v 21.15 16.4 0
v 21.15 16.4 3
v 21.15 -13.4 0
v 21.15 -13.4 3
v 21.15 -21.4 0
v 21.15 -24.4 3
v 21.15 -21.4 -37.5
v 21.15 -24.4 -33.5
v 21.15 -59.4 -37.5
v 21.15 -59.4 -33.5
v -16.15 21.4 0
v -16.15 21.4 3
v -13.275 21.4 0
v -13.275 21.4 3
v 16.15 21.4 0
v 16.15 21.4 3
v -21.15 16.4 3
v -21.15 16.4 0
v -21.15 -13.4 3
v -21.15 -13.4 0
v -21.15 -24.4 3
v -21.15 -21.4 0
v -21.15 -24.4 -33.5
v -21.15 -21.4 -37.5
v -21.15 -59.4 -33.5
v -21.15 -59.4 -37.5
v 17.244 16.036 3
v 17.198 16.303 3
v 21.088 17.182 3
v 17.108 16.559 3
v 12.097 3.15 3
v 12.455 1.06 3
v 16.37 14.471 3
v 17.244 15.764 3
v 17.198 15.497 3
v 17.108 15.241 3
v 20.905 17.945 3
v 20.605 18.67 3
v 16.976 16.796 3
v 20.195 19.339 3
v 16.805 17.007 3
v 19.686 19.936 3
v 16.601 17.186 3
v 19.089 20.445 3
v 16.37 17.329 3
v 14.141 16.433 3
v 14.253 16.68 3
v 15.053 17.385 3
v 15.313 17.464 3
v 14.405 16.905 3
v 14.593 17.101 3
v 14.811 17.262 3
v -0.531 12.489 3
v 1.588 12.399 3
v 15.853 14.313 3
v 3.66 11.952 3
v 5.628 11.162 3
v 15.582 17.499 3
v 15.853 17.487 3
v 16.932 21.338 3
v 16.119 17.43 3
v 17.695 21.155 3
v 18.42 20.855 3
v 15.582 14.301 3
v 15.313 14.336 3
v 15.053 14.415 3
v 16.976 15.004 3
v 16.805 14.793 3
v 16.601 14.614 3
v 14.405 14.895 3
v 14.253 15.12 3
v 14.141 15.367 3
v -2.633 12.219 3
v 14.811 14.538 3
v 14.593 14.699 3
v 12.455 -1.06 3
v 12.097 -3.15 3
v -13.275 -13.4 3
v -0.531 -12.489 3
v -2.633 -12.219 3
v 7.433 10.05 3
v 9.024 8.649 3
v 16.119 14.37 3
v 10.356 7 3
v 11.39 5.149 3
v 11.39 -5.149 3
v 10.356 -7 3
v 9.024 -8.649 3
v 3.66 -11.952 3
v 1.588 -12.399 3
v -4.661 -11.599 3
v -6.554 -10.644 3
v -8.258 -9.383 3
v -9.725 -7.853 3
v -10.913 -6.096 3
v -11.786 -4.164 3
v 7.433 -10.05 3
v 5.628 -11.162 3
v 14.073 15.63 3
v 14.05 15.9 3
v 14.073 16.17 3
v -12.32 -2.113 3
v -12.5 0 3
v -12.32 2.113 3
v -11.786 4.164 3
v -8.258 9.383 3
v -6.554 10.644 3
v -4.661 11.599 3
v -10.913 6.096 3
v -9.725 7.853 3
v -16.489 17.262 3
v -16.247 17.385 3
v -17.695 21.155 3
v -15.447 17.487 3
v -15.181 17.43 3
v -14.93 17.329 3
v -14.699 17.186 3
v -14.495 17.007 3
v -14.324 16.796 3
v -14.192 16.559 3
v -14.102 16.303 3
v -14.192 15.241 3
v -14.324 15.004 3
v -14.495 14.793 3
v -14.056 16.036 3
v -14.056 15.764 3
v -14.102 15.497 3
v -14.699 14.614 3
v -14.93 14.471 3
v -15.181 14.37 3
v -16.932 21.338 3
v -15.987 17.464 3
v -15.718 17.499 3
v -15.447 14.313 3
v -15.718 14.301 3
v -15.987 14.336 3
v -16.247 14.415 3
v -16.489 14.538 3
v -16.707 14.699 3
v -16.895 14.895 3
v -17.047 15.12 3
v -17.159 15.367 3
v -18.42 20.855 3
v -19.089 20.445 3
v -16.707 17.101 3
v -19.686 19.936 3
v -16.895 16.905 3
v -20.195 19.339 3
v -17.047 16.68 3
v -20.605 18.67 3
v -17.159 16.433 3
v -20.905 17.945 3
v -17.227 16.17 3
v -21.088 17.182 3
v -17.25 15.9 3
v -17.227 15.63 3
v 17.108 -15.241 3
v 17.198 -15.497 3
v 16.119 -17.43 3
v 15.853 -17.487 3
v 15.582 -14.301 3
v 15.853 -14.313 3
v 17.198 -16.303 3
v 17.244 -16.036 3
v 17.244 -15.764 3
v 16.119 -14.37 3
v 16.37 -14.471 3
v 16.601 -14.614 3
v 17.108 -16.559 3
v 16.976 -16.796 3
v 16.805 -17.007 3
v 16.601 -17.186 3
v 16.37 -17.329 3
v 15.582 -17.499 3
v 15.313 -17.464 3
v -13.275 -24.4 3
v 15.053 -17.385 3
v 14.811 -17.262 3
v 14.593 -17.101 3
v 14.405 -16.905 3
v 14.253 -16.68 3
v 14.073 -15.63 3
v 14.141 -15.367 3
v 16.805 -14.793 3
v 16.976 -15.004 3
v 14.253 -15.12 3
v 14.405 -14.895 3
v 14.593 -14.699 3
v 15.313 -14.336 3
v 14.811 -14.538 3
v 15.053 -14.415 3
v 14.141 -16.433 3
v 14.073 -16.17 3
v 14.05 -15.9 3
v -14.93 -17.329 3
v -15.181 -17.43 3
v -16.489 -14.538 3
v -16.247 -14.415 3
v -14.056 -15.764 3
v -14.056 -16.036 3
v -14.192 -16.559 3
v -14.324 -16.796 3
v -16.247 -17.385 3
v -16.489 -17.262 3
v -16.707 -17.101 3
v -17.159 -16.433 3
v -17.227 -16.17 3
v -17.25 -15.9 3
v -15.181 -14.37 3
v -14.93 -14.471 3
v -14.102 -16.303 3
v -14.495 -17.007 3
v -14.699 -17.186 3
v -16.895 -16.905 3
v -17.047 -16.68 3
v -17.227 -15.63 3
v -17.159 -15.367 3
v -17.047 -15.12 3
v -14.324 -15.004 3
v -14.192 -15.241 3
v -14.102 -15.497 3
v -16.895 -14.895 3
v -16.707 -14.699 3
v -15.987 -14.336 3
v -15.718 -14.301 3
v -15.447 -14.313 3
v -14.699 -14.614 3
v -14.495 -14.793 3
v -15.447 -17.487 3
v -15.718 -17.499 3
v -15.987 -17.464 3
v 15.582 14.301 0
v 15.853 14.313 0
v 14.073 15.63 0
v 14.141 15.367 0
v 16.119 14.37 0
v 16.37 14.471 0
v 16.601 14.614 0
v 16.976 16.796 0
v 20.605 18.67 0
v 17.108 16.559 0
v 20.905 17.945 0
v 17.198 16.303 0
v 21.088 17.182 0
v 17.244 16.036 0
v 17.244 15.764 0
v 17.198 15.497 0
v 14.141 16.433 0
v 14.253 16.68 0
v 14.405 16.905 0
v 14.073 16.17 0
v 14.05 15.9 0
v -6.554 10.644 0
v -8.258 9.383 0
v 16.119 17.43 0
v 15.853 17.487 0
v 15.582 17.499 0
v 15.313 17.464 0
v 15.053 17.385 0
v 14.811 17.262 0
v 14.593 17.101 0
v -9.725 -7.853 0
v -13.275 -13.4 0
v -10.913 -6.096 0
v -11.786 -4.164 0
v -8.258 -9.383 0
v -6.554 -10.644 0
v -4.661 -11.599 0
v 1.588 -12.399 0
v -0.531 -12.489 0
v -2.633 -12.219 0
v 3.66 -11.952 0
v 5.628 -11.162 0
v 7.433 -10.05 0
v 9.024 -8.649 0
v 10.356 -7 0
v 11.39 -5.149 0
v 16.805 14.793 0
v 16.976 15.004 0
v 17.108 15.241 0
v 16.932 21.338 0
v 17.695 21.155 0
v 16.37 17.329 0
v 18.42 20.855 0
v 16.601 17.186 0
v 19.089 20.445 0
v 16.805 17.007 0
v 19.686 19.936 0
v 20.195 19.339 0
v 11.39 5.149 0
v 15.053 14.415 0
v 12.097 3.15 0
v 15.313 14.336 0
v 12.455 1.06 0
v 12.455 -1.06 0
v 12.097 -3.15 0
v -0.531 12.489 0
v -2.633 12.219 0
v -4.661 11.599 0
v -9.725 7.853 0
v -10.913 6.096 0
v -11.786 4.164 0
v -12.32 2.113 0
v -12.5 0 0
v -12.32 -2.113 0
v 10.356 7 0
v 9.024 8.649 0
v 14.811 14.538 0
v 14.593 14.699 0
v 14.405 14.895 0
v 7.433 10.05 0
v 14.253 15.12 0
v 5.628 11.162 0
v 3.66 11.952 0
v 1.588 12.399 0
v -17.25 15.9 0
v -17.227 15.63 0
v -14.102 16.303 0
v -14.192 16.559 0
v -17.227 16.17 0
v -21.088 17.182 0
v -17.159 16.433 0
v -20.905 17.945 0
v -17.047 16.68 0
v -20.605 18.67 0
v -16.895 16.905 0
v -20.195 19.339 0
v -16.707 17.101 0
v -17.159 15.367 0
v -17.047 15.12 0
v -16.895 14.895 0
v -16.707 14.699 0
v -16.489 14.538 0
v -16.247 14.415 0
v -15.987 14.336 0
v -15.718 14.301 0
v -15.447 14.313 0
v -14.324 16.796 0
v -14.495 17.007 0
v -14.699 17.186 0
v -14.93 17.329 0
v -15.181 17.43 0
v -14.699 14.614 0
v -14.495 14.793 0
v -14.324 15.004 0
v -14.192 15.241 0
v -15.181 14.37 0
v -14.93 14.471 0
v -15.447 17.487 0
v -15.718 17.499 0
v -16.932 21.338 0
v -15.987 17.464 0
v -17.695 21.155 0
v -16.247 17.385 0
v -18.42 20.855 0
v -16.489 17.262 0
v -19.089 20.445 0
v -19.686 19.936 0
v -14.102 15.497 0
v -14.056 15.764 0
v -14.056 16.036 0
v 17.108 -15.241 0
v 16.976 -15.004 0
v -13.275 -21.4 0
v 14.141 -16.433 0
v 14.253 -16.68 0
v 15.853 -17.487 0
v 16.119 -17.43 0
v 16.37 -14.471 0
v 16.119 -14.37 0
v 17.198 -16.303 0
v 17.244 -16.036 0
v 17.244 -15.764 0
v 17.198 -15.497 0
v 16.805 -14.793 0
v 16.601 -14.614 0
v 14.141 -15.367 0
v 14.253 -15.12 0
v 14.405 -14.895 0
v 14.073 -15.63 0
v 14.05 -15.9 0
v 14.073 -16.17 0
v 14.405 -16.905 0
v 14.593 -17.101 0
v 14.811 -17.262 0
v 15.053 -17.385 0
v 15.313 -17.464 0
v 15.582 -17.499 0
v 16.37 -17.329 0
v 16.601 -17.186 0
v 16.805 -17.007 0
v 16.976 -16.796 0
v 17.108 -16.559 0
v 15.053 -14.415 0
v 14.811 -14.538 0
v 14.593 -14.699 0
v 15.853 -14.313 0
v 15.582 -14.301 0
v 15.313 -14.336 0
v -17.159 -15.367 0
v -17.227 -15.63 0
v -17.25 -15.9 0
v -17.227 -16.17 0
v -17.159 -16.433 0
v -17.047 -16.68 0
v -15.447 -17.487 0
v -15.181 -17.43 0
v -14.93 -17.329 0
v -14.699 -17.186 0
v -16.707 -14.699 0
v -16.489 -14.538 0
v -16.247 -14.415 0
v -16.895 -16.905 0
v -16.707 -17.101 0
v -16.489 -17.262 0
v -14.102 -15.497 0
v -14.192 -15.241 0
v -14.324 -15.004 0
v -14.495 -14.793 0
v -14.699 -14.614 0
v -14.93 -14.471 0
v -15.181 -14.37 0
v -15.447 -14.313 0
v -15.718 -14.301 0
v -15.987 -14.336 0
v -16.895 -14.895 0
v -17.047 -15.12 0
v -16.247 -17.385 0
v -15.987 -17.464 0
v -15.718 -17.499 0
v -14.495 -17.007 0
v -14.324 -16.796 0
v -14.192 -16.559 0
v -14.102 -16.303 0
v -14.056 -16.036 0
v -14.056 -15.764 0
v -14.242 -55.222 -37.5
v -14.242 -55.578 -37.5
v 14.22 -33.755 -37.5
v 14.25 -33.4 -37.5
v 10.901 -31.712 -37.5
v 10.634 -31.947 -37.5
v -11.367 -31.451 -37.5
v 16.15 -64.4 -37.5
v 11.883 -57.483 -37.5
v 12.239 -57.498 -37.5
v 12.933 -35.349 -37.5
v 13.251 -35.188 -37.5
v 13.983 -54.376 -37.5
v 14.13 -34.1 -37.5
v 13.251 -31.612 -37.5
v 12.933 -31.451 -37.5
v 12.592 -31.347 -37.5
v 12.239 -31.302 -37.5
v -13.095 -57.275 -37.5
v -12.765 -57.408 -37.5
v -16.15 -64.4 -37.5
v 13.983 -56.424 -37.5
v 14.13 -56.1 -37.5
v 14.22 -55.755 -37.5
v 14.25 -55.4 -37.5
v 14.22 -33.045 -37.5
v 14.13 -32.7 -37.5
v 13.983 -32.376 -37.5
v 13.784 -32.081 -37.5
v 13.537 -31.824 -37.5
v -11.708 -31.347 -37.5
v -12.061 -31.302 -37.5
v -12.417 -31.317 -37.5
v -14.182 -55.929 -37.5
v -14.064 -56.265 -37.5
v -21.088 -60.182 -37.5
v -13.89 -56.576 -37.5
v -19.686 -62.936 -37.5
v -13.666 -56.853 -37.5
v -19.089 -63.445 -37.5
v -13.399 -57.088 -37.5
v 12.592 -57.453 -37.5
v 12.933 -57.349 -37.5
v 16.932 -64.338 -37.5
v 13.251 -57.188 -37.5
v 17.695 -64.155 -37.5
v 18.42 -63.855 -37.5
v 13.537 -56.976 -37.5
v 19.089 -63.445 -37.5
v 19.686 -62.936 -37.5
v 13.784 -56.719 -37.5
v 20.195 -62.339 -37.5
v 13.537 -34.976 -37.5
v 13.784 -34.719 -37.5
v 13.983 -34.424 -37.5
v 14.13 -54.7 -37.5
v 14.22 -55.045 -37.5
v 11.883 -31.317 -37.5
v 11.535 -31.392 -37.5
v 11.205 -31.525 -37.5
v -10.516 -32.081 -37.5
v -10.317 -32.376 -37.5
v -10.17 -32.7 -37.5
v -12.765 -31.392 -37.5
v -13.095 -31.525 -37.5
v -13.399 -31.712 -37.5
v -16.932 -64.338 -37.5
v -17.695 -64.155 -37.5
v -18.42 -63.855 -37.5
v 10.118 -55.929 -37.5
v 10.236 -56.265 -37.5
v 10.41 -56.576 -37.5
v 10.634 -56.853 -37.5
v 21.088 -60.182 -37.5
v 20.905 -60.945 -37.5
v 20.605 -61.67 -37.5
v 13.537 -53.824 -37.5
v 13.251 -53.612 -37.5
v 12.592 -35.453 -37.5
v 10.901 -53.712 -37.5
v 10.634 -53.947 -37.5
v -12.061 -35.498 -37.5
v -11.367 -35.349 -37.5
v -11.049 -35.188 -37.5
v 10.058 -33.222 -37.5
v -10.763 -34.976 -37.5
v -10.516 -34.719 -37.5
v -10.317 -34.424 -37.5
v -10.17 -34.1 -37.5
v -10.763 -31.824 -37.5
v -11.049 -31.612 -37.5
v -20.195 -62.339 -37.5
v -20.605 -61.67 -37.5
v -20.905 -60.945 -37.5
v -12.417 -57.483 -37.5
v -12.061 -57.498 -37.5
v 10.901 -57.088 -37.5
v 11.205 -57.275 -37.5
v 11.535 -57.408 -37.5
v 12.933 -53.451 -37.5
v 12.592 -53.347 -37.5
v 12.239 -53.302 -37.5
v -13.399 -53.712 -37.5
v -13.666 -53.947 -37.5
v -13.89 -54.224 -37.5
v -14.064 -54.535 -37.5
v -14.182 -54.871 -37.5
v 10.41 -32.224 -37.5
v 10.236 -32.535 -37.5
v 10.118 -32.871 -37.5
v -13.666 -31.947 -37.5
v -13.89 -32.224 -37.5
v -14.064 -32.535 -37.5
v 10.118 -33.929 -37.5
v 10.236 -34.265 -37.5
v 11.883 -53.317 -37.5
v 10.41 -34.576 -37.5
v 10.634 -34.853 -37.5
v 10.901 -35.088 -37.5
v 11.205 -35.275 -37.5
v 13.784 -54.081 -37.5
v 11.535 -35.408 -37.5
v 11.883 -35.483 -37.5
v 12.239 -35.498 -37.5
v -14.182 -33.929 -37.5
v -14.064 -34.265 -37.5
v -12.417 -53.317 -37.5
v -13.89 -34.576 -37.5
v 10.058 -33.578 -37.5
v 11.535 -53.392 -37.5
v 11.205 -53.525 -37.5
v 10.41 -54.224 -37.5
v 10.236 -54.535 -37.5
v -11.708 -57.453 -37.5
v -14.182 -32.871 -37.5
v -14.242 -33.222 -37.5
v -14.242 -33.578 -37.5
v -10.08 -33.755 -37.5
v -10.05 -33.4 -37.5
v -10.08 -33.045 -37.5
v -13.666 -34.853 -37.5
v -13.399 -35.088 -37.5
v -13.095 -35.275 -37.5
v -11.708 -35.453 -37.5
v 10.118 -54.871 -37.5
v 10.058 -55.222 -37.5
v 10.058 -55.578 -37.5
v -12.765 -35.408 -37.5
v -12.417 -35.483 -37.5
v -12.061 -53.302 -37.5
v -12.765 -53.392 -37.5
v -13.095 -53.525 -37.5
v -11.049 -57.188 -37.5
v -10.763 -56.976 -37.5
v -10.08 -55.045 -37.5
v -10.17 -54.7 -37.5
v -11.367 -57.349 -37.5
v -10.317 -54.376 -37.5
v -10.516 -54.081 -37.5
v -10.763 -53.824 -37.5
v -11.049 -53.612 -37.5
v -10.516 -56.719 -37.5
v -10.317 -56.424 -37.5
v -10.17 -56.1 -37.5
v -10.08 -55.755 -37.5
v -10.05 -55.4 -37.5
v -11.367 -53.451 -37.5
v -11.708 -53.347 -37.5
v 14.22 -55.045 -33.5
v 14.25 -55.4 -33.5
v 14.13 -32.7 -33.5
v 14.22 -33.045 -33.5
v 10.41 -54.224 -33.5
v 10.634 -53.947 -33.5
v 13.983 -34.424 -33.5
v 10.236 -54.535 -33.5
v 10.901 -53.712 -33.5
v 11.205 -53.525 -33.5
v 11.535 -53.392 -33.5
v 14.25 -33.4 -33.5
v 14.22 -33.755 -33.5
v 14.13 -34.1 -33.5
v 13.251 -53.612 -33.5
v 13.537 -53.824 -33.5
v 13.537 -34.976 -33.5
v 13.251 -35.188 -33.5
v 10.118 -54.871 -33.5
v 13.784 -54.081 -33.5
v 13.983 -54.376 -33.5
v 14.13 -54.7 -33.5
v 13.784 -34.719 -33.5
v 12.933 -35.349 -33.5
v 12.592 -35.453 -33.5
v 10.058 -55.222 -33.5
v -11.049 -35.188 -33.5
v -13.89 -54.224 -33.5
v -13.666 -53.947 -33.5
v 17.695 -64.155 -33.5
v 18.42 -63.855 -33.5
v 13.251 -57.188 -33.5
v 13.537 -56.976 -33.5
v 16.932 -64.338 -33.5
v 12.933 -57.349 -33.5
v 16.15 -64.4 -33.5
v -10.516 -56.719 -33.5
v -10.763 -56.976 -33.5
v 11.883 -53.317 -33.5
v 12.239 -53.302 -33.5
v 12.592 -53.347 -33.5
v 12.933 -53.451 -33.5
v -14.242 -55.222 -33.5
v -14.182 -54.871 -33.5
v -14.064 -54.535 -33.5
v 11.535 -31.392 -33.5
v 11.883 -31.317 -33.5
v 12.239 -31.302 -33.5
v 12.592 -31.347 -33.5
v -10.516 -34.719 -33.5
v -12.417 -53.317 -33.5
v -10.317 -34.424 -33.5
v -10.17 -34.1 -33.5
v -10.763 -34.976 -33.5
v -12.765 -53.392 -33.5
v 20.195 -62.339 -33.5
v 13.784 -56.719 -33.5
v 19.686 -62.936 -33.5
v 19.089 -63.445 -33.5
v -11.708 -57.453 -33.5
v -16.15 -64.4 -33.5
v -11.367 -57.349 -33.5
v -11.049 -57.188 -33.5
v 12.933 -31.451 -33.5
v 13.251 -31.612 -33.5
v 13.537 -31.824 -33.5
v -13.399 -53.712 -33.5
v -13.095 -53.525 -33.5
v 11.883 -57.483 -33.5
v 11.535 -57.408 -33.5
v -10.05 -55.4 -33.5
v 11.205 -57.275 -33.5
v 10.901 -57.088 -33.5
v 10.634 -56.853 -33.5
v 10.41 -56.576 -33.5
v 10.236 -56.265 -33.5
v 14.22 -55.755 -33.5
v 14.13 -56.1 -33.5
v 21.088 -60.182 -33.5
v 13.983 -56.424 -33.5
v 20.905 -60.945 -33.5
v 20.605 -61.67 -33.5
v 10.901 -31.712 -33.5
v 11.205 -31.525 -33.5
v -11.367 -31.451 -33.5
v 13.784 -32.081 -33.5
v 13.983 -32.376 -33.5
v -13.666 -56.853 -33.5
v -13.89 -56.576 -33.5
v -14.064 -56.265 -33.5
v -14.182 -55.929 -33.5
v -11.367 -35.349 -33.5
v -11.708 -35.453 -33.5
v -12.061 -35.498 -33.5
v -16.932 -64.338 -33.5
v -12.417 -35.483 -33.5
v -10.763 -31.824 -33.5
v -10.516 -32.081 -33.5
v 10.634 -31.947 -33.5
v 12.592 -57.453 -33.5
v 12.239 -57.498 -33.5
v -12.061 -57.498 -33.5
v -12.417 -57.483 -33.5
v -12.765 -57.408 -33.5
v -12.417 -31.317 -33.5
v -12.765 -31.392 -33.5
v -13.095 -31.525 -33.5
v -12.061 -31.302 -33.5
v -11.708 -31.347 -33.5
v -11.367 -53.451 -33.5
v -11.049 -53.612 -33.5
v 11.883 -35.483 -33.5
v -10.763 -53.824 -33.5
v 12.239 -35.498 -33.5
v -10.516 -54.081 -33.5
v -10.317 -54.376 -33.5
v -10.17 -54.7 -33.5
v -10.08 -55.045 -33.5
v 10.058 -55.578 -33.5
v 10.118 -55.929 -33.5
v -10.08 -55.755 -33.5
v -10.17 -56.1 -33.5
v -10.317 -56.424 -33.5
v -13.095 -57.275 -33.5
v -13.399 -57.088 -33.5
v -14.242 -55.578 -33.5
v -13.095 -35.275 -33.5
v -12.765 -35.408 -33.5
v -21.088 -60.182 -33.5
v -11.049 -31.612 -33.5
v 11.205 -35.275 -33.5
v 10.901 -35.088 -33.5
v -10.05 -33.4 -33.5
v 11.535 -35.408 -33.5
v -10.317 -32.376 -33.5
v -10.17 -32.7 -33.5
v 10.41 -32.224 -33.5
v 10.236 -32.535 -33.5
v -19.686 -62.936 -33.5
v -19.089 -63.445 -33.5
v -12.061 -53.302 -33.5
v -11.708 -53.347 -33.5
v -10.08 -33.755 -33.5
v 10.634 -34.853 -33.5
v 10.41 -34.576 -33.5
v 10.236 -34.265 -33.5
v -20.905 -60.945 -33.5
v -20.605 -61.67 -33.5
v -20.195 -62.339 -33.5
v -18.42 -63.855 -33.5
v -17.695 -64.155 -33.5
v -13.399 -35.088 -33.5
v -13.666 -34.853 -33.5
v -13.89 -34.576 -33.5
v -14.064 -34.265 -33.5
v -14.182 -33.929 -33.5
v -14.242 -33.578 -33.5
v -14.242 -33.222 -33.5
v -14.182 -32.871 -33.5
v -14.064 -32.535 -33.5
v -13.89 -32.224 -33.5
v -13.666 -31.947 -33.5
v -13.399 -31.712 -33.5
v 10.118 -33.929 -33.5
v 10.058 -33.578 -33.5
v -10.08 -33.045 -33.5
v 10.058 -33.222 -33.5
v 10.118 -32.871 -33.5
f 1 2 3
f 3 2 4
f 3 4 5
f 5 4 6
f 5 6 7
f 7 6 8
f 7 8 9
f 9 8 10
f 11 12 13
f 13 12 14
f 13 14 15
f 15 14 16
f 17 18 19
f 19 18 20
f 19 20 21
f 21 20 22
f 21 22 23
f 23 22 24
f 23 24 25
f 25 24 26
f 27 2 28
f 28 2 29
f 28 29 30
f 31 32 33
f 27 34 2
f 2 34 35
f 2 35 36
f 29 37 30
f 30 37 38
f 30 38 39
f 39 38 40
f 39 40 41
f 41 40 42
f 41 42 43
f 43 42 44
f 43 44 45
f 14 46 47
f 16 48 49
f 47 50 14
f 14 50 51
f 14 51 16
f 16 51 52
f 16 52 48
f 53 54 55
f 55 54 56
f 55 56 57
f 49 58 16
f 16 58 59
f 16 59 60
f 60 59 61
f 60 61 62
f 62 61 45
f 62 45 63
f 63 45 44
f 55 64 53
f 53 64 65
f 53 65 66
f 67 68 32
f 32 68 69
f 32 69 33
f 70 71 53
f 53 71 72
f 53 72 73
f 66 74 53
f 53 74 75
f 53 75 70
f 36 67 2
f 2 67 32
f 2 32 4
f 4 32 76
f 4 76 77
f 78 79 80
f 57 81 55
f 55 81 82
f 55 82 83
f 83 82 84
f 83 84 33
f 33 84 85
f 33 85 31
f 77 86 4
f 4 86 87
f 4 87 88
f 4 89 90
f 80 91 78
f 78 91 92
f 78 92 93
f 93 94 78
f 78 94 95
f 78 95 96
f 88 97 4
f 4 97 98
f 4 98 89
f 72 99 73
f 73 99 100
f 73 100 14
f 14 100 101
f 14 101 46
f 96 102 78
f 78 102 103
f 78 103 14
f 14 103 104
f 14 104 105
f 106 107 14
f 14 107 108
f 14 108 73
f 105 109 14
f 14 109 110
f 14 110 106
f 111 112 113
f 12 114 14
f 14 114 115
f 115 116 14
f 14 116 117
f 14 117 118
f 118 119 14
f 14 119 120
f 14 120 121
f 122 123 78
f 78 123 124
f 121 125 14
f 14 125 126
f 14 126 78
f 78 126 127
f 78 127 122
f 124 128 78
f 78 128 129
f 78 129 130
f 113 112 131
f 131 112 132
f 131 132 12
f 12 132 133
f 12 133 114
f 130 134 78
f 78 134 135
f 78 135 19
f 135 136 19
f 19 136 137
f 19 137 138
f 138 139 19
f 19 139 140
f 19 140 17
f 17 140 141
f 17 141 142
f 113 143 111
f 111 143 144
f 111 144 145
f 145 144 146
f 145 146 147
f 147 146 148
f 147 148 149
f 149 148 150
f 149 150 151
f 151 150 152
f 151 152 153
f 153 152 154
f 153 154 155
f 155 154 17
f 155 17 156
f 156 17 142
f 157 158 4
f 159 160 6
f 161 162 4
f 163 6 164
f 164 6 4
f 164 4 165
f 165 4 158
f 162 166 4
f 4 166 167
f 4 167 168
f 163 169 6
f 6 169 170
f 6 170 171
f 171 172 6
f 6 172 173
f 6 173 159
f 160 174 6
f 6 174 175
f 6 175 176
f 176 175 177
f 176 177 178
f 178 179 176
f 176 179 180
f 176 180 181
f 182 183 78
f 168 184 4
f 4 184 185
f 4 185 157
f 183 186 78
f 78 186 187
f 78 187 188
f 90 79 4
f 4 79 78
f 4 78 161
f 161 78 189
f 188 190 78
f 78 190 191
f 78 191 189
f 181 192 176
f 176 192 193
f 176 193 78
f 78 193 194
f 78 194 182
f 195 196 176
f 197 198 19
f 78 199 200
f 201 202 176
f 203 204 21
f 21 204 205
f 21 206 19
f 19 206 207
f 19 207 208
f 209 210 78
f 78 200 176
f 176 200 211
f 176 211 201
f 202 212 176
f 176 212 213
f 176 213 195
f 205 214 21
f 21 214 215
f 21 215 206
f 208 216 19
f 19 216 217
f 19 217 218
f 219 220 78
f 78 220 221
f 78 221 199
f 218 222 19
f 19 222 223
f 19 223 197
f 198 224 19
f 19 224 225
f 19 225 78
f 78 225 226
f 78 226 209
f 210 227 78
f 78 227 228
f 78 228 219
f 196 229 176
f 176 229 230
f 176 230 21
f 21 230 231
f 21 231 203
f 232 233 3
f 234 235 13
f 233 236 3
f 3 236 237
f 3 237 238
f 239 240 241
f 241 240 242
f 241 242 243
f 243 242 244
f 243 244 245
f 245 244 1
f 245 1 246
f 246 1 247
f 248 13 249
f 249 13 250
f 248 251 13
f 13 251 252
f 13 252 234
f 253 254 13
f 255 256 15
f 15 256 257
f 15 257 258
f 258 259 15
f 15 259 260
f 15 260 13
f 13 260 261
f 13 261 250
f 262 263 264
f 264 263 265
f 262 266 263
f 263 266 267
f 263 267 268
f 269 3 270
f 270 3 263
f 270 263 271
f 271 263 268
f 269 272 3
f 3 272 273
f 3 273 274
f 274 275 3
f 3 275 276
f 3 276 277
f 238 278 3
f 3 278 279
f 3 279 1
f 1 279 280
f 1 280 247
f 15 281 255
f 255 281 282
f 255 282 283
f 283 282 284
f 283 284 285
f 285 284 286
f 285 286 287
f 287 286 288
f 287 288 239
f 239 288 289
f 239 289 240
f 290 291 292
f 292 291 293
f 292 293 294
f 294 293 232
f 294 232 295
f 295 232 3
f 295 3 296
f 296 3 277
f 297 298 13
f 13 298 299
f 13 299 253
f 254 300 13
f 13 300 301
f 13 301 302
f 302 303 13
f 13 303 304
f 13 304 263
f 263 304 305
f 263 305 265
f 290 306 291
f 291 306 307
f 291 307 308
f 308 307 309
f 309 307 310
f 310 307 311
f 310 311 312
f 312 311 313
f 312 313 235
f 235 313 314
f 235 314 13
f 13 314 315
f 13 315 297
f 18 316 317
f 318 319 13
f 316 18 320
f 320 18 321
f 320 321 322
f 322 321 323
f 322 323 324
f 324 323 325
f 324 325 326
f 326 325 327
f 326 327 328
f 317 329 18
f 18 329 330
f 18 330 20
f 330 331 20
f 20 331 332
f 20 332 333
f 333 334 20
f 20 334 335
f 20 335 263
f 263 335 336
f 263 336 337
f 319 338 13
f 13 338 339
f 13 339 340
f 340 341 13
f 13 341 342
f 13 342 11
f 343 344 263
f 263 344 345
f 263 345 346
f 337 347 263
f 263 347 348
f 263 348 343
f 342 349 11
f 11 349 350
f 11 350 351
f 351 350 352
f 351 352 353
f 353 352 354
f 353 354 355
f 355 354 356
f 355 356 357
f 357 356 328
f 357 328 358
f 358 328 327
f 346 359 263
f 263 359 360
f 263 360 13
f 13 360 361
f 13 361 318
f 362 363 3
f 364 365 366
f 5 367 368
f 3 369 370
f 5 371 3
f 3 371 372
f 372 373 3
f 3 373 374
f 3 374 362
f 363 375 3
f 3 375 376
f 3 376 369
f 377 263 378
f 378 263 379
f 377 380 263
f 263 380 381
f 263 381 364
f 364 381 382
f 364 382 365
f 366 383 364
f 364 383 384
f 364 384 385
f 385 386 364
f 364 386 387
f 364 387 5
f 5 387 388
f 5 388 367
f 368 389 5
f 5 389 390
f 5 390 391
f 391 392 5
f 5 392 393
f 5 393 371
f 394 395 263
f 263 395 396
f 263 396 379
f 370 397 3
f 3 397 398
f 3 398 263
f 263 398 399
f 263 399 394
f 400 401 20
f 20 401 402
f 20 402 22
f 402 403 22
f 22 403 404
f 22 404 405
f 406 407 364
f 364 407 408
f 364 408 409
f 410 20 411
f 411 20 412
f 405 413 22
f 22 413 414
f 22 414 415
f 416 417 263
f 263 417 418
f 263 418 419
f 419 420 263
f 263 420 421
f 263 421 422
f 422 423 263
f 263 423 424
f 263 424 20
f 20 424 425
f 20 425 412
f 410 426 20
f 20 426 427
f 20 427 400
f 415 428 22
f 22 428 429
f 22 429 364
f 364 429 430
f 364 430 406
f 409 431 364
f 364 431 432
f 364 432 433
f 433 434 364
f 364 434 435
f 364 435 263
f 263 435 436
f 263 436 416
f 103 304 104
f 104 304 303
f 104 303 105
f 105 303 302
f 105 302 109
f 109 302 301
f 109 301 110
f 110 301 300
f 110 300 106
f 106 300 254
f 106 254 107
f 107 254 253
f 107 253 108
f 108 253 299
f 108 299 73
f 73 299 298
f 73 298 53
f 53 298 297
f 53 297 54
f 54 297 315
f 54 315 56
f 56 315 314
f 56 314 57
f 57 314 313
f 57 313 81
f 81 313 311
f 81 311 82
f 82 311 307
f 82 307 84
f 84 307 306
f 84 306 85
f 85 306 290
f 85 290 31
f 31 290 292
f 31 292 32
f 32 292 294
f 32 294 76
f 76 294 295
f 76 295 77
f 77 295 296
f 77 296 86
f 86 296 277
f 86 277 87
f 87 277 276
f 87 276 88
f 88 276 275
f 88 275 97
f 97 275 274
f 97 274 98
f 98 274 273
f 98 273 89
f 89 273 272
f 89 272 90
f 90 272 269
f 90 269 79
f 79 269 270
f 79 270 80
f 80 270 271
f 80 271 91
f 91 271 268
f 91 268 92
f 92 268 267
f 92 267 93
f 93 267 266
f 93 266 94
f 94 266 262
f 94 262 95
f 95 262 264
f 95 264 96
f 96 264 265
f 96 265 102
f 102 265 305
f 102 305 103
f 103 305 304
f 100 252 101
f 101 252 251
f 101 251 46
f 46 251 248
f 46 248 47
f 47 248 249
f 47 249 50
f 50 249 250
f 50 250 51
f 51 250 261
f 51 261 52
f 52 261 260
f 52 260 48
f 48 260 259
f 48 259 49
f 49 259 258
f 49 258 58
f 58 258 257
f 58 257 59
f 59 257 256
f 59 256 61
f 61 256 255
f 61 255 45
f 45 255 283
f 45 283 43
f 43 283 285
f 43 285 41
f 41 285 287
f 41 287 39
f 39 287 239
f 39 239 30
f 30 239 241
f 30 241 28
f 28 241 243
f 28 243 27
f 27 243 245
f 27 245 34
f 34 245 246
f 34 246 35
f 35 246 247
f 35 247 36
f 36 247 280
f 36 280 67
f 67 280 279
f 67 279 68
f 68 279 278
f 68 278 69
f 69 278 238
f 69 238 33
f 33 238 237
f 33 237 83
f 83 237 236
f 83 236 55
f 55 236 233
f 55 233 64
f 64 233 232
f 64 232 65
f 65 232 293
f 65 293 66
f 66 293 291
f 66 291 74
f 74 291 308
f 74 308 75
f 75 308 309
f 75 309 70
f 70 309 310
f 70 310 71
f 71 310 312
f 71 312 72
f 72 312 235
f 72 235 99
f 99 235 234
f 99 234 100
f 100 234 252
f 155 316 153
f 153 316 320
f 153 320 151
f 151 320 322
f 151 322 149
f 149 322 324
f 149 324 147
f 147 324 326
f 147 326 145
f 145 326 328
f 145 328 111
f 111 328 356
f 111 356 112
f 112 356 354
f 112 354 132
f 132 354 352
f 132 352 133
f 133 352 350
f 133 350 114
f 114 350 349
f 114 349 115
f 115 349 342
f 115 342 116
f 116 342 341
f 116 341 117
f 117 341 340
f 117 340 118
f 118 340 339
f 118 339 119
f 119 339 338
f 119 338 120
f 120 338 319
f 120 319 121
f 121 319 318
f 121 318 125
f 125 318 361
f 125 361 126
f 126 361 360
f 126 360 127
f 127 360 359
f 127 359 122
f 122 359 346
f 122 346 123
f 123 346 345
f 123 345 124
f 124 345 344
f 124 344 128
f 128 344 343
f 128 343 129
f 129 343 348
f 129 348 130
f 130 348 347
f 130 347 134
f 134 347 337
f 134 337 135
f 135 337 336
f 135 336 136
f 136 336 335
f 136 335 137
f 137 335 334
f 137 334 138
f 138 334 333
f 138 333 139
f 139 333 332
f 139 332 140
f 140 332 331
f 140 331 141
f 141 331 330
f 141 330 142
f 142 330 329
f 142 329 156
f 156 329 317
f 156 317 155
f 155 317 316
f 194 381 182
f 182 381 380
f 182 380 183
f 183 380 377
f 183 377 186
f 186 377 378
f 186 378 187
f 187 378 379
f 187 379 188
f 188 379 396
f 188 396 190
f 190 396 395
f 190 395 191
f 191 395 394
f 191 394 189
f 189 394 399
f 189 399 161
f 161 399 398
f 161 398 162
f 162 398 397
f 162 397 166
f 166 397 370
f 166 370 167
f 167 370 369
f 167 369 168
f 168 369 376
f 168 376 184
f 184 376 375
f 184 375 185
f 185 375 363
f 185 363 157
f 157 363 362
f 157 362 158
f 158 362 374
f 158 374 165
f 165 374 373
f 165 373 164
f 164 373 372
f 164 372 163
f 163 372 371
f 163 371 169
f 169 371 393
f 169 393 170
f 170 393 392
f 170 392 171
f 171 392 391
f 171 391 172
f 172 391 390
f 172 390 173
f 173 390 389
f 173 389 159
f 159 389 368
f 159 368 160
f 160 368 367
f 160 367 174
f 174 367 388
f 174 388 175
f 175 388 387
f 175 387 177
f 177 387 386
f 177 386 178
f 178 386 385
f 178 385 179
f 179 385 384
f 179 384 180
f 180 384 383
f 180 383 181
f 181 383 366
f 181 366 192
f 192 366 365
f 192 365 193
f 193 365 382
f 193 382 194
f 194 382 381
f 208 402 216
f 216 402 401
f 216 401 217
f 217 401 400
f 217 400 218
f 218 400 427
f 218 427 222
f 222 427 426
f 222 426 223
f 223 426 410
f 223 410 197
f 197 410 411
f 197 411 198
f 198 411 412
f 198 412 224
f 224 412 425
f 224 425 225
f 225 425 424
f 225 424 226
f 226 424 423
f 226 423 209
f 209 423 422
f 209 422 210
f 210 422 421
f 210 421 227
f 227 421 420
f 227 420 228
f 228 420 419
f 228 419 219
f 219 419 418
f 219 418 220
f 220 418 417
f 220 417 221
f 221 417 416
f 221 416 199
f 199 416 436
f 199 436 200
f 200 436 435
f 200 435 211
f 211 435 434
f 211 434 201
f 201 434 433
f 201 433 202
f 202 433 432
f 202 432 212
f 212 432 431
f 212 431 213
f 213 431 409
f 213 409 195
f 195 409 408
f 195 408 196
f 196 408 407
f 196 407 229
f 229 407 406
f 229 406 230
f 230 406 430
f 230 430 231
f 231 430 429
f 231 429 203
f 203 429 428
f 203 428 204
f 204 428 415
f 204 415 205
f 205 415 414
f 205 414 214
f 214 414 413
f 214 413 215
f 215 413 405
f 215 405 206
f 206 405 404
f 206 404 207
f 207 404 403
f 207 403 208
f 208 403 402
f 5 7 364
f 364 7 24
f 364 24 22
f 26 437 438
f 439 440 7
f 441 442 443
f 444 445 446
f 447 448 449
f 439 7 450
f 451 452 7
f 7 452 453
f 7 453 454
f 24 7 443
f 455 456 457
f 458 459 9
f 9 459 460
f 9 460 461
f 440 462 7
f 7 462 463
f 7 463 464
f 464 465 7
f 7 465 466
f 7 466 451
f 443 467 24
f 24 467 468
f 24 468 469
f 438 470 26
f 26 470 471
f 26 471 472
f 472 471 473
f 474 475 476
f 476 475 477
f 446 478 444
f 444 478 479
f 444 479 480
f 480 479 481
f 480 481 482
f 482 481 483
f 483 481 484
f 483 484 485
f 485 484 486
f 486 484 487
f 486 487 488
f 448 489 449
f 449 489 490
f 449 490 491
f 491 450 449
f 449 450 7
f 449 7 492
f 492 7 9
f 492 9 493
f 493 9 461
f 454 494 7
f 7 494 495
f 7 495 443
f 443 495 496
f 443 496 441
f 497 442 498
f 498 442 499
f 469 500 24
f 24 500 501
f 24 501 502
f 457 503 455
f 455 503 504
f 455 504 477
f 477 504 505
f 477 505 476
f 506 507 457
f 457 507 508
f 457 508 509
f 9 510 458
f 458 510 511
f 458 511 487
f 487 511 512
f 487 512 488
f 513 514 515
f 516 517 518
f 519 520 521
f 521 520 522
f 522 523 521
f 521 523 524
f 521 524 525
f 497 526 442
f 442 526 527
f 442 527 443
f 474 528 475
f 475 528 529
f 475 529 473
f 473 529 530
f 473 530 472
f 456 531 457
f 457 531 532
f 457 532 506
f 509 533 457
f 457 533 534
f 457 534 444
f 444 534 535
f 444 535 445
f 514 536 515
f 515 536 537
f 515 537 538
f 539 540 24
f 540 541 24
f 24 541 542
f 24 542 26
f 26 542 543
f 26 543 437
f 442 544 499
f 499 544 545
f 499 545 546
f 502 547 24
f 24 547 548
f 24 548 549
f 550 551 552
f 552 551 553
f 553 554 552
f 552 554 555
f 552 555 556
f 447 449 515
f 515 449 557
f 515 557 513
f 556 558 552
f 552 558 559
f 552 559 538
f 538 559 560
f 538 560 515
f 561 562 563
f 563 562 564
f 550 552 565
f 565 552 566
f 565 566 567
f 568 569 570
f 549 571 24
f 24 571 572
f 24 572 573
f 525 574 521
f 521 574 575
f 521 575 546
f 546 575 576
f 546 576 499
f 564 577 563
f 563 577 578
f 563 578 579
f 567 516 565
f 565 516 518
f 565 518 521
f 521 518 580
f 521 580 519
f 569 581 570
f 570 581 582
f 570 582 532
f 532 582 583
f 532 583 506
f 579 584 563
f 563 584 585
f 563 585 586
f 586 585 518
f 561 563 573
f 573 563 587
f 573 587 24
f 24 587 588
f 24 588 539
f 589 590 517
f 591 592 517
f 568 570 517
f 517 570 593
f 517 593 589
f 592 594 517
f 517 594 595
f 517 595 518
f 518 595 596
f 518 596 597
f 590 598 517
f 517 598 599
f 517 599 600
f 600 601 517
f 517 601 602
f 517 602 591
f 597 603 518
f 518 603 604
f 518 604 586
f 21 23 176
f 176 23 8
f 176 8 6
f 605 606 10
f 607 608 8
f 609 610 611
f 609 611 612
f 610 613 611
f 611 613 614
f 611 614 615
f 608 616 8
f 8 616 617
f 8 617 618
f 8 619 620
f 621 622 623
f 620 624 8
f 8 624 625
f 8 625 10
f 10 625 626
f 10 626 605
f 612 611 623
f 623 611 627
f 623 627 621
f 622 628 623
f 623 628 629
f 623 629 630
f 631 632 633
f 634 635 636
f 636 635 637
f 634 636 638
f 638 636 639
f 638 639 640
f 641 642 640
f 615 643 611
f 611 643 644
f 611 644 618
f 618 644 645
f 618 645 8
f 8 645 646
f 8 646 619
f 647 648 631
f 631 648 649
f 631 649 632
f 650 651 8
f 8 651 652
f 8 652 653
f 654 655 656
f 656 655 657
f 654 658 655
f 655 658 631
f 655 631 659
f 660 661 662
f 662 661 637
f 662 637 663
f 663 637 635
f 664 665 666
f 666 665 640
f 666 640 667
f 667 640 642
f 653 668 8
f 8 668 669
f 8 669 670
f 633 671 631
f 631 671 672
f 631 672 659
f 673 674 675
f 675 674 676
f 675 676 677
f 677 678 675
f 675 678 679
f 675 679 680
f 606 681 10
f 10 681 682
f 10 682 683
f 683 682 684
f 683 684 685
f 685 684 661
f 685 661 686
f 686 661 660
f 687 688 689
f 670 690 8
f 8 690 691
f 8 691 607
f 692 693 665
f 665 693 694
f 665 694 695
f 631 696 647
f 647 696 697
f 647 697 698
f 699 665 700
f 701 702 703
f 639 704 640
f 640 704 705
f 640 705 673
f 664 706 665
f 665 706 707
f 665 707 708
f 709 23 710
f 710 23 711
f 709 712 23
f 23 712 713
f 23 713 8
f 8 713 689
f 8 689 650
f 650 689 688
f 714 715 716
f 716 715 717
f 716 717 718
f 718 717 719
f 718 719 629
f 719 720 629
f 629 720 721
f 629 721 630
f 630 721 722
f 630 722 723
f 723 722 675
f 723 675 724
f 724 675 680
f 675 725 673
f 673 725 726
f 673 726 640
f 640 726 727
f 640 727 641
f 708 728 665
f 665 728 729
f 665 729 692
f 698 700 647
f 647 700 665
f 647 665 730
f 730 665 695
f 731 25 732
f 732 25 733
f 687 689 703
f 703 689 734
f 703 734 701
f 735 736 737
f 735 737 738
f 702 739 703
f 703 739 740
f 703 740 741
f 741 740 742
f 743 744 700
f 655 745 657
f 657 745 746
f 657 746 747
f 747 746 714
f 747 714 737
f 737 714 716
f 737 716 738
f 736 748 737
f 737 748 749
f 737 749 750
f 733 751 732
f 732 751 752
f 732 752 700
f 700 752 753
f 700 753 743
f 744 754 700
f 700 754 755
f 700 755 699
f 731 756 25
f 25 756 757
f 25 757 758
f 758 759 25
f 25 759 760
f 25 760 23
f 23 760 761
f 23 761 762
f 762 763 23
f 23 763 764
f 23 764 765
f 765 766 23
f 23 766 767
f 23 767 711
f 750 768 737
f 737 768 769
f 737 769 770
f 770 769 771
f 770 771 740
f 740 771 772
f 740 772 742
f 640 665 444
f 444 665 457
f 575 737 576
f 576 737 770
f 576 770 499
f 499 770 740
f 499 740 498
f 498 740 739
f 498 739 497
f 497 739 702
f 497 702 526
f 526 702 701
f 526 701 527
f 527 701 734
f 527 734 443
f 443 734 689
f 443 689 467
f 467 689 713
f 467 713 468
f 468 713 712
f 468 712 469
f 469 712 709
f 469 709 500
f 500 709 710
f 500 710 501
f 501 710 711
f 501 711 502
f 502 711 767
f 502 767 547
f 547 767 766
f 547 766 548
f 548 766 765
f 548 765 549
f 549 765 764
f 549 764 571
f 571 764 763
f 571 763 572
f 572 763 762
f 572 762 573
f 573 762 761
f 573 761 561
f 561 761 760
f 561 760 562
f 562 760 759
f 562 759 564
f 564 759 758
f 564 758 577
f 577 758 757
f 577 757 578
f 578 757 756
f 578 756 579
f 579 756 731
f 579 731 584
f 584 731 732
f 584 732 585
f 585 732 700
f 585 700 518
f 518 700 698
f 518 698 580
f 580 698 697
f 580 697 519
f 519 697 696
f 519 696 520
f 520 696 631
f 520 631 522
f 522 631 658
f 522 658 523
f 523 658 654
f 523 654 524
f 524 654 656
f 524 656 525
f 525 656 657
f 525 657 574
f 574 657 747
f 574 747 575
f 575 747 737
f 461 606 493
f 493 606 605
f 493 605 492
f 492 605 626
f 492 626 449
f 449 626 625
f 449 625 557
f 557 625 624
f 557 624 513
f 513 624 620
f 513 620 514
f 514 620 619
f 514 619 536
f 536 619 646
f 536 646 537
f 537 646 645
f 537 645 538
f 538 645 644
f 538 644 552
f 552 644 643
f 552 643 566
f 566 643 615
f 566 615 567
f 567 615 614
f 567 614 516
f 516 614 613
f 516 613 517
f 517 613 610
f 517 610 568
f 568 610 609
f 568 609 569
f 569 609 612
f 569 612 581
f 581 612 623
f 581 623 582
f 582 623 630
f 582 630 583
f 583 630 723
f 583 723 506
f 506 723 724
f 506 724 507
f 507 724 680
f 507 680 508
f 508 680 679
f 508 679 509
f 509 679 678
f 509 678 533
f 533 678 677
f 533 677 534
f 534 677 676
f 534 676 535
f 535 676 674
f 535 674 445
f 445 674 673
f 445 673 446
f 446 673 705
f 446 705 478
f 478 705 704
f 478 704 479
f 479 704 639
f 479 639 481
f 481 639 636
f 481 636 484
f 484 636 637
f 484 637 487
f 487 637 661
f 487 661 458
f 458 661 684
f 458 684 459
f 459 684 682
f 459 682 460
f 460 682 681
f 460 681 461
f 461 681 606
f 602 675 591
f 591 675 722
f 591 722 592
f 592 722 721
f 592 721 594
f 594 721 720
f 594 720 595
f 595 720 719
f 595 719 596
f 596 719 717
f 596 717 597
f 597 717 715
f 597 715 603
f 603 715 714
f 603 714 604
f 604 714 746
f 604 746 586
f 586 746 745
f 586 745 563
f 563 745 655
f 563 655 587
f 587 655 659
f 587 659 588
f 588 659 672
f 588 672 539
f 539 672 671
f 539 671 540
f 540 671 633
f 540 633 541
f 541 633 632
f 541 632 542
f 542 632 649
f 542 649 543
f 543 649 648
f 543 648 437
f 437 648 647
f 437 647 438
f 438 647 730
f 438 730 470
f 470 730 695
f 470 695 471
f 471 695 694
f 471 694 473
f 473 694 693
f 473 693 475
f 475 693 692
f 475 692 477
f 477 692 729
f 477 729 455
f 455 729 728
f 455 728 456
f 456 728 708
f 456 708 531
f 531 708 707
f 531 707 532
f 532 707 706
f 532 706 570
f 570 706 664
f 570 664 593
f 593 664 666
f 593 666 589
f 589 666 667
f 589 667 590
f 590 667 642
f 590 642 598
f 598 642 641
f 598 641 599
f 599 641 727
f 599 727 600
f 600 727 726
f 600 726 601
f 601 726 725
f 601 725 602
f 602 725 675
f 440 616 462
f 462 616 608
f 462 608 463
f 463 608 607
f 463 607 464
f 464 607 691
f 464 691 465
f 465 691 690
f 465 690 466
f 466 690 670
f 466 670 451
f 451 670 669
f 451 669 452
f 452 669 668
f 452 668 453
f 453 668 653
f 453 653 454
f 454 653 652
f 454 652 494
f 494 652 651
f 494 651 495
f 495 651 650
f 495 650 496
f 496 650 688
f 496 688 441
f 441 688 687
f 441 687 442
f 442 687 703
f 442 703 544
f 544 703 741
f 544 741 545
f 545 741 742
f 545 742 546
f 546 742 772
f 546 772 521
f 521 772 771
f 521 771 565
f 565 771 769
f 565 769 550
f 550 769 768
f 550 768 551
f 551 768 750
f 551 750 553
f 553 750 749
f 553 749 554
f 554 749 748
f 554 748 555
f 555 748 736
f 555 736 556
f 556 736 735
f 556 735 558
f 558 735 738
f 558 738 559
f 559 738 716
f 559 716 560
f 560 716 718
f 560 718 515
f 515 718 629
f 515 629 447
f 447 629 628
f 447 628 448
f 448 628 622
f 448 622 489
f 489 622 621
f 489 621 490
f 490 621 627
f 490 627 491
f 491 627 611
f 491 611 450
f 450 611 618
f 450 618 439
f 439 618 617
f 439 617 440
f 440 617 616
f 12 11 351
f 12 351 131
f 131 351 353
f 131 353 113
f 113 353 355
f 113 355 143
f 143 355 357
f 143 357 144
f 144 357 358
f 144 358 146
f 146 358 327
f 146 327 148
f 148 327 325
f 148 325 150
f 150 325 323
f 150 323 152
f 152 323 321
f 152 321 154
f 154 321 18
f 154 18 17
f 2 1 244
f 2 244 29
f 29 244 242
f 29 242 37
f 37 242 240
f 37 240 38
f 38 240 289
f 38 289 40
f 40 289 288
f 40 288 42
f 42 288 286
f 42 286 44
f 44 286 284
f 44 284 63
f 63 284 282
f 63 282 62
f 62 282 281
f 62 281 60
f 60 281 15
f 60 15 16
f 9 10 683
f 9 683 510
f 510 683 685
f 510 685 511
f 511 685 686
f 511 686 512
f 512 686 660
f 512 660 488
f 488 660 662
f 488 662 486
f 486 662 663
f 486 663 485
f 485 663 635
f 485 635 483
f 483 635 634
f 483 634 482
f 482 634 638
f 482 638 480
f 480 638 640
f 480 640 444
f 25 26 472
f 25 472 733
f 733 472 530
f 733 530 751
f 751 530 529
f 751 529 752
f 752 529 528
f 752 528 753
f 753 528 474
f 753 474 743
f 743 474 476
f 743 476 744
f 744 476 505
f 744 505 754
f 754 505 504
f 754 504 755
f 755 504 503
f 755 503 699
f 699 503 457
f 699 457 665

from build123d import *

# Parameters (mm, degrees)
SKETCH1_W           = 42.3
SKETCH1_H           = 42.8
BOSS_EXTRUDE1_DEPTH = 3
SKETCH6_R           = 12.5
SKETCH6_R_2         = 1.6
CUT_EXTRUDE3_DEPTH  = 31.237104689
SKETCH7_W           = 42.3
SKETCH7_H           = 40.5
BOSS_EXTRUDE2_DEPTH = 3
SKETCH8_W           = 42.3
SKETCH8_H           = 4
BOSS_EXTRUDE3_DEPTH = 40
SKETCH10_R          = 2.1
CUT_EXTRUDE4_DEPTH  = 77.986573505
FILLET1_R           = 5


with BuildPart() as part:
    # Sketch1 → Boss-Extrude1 (new body)
    with BuildSketch(Plane.XY):
        Rectangle(SKETCH1_W, SKETCH1_H)
    extrude(amount=BOSS_EXTRUDE1_DEPTH)

    # Sketch6 → Cut-Extrude3 (cut, through all)
    with BuildSketch(Plane(origin=(0, 0, 0), x_dir=(-1, 0, 0), z_dir=(0, 0, -1))):
        Circle(SKETCH6_R)
        with Locations((-15.65, 15.9)):
            Circle(SKETCH6_R_2)
        with Locations((15.65, 15.9)):
            Circle(SKETCH6_R_2)
        with Locations((-15.65, -15.9)):
            Circle(SKETCH6_R_2)
        with Locations((15.65, -15.9)):
            Circle(SKETCH6_R_2)
    extrude(amount=-CUT_EXTRUDE3_DEPTH, mode=Mode.SUBTRACT)

    # Sketch7 → Boss-Extrude2 (add)
    with BuildSketch(Plane.XZ.offset(21.4)):
        with Locations((0, -17.25)):
            Rectangle(SKETCH7_W, SKETCH7_H)
    extrude(amount=BOSS_EXTRUDE2_DEPTH)

    # Sketch8 → Boss-Extrude3 (add)
    with BuildSketch(Plane.XZ.offset(24.4)):
        with Locations((0, -35.5)):
            Rectangle(SKETCH8_W, SKETCH8_H)
    extrude(amount=BOSS_EXTRUDE3_DEPTH)

    # Sketch10 → Cut-Extrude4 (cut, through all)
    with BuildSketch(Plane.XY.offset(-33.5)):
        with Locations((-12.15, -33.4)):
            Circle(SKETCH10_R)
        with Locations((12.15, -33.4)):
            Circle(SKETCH10_R)
        with Locations((-12.15, -55.4)):
            Circle(SKETCH10_R)
        with Locations((12.15, -55.4)):
            Circle(SKETCH10_R)
    extrude(amount=-CUT_EXTRUDE4_DEPTH, mode=Mode.SUBTRACT)

    # Fillet1
    fillet1_edges = [part.edges().sort_by_distance(p)[0] for p in [
        (-21.15, -64.4, -35.5),
        (21.15, -64.4, -35.5),
        (-21.15, 21.4, 1.5),
        (21.15, 21.4, 1.5),
    ]]
    fillet(fillet1_edges, radius=FILLET1_R)


solid = part.part
